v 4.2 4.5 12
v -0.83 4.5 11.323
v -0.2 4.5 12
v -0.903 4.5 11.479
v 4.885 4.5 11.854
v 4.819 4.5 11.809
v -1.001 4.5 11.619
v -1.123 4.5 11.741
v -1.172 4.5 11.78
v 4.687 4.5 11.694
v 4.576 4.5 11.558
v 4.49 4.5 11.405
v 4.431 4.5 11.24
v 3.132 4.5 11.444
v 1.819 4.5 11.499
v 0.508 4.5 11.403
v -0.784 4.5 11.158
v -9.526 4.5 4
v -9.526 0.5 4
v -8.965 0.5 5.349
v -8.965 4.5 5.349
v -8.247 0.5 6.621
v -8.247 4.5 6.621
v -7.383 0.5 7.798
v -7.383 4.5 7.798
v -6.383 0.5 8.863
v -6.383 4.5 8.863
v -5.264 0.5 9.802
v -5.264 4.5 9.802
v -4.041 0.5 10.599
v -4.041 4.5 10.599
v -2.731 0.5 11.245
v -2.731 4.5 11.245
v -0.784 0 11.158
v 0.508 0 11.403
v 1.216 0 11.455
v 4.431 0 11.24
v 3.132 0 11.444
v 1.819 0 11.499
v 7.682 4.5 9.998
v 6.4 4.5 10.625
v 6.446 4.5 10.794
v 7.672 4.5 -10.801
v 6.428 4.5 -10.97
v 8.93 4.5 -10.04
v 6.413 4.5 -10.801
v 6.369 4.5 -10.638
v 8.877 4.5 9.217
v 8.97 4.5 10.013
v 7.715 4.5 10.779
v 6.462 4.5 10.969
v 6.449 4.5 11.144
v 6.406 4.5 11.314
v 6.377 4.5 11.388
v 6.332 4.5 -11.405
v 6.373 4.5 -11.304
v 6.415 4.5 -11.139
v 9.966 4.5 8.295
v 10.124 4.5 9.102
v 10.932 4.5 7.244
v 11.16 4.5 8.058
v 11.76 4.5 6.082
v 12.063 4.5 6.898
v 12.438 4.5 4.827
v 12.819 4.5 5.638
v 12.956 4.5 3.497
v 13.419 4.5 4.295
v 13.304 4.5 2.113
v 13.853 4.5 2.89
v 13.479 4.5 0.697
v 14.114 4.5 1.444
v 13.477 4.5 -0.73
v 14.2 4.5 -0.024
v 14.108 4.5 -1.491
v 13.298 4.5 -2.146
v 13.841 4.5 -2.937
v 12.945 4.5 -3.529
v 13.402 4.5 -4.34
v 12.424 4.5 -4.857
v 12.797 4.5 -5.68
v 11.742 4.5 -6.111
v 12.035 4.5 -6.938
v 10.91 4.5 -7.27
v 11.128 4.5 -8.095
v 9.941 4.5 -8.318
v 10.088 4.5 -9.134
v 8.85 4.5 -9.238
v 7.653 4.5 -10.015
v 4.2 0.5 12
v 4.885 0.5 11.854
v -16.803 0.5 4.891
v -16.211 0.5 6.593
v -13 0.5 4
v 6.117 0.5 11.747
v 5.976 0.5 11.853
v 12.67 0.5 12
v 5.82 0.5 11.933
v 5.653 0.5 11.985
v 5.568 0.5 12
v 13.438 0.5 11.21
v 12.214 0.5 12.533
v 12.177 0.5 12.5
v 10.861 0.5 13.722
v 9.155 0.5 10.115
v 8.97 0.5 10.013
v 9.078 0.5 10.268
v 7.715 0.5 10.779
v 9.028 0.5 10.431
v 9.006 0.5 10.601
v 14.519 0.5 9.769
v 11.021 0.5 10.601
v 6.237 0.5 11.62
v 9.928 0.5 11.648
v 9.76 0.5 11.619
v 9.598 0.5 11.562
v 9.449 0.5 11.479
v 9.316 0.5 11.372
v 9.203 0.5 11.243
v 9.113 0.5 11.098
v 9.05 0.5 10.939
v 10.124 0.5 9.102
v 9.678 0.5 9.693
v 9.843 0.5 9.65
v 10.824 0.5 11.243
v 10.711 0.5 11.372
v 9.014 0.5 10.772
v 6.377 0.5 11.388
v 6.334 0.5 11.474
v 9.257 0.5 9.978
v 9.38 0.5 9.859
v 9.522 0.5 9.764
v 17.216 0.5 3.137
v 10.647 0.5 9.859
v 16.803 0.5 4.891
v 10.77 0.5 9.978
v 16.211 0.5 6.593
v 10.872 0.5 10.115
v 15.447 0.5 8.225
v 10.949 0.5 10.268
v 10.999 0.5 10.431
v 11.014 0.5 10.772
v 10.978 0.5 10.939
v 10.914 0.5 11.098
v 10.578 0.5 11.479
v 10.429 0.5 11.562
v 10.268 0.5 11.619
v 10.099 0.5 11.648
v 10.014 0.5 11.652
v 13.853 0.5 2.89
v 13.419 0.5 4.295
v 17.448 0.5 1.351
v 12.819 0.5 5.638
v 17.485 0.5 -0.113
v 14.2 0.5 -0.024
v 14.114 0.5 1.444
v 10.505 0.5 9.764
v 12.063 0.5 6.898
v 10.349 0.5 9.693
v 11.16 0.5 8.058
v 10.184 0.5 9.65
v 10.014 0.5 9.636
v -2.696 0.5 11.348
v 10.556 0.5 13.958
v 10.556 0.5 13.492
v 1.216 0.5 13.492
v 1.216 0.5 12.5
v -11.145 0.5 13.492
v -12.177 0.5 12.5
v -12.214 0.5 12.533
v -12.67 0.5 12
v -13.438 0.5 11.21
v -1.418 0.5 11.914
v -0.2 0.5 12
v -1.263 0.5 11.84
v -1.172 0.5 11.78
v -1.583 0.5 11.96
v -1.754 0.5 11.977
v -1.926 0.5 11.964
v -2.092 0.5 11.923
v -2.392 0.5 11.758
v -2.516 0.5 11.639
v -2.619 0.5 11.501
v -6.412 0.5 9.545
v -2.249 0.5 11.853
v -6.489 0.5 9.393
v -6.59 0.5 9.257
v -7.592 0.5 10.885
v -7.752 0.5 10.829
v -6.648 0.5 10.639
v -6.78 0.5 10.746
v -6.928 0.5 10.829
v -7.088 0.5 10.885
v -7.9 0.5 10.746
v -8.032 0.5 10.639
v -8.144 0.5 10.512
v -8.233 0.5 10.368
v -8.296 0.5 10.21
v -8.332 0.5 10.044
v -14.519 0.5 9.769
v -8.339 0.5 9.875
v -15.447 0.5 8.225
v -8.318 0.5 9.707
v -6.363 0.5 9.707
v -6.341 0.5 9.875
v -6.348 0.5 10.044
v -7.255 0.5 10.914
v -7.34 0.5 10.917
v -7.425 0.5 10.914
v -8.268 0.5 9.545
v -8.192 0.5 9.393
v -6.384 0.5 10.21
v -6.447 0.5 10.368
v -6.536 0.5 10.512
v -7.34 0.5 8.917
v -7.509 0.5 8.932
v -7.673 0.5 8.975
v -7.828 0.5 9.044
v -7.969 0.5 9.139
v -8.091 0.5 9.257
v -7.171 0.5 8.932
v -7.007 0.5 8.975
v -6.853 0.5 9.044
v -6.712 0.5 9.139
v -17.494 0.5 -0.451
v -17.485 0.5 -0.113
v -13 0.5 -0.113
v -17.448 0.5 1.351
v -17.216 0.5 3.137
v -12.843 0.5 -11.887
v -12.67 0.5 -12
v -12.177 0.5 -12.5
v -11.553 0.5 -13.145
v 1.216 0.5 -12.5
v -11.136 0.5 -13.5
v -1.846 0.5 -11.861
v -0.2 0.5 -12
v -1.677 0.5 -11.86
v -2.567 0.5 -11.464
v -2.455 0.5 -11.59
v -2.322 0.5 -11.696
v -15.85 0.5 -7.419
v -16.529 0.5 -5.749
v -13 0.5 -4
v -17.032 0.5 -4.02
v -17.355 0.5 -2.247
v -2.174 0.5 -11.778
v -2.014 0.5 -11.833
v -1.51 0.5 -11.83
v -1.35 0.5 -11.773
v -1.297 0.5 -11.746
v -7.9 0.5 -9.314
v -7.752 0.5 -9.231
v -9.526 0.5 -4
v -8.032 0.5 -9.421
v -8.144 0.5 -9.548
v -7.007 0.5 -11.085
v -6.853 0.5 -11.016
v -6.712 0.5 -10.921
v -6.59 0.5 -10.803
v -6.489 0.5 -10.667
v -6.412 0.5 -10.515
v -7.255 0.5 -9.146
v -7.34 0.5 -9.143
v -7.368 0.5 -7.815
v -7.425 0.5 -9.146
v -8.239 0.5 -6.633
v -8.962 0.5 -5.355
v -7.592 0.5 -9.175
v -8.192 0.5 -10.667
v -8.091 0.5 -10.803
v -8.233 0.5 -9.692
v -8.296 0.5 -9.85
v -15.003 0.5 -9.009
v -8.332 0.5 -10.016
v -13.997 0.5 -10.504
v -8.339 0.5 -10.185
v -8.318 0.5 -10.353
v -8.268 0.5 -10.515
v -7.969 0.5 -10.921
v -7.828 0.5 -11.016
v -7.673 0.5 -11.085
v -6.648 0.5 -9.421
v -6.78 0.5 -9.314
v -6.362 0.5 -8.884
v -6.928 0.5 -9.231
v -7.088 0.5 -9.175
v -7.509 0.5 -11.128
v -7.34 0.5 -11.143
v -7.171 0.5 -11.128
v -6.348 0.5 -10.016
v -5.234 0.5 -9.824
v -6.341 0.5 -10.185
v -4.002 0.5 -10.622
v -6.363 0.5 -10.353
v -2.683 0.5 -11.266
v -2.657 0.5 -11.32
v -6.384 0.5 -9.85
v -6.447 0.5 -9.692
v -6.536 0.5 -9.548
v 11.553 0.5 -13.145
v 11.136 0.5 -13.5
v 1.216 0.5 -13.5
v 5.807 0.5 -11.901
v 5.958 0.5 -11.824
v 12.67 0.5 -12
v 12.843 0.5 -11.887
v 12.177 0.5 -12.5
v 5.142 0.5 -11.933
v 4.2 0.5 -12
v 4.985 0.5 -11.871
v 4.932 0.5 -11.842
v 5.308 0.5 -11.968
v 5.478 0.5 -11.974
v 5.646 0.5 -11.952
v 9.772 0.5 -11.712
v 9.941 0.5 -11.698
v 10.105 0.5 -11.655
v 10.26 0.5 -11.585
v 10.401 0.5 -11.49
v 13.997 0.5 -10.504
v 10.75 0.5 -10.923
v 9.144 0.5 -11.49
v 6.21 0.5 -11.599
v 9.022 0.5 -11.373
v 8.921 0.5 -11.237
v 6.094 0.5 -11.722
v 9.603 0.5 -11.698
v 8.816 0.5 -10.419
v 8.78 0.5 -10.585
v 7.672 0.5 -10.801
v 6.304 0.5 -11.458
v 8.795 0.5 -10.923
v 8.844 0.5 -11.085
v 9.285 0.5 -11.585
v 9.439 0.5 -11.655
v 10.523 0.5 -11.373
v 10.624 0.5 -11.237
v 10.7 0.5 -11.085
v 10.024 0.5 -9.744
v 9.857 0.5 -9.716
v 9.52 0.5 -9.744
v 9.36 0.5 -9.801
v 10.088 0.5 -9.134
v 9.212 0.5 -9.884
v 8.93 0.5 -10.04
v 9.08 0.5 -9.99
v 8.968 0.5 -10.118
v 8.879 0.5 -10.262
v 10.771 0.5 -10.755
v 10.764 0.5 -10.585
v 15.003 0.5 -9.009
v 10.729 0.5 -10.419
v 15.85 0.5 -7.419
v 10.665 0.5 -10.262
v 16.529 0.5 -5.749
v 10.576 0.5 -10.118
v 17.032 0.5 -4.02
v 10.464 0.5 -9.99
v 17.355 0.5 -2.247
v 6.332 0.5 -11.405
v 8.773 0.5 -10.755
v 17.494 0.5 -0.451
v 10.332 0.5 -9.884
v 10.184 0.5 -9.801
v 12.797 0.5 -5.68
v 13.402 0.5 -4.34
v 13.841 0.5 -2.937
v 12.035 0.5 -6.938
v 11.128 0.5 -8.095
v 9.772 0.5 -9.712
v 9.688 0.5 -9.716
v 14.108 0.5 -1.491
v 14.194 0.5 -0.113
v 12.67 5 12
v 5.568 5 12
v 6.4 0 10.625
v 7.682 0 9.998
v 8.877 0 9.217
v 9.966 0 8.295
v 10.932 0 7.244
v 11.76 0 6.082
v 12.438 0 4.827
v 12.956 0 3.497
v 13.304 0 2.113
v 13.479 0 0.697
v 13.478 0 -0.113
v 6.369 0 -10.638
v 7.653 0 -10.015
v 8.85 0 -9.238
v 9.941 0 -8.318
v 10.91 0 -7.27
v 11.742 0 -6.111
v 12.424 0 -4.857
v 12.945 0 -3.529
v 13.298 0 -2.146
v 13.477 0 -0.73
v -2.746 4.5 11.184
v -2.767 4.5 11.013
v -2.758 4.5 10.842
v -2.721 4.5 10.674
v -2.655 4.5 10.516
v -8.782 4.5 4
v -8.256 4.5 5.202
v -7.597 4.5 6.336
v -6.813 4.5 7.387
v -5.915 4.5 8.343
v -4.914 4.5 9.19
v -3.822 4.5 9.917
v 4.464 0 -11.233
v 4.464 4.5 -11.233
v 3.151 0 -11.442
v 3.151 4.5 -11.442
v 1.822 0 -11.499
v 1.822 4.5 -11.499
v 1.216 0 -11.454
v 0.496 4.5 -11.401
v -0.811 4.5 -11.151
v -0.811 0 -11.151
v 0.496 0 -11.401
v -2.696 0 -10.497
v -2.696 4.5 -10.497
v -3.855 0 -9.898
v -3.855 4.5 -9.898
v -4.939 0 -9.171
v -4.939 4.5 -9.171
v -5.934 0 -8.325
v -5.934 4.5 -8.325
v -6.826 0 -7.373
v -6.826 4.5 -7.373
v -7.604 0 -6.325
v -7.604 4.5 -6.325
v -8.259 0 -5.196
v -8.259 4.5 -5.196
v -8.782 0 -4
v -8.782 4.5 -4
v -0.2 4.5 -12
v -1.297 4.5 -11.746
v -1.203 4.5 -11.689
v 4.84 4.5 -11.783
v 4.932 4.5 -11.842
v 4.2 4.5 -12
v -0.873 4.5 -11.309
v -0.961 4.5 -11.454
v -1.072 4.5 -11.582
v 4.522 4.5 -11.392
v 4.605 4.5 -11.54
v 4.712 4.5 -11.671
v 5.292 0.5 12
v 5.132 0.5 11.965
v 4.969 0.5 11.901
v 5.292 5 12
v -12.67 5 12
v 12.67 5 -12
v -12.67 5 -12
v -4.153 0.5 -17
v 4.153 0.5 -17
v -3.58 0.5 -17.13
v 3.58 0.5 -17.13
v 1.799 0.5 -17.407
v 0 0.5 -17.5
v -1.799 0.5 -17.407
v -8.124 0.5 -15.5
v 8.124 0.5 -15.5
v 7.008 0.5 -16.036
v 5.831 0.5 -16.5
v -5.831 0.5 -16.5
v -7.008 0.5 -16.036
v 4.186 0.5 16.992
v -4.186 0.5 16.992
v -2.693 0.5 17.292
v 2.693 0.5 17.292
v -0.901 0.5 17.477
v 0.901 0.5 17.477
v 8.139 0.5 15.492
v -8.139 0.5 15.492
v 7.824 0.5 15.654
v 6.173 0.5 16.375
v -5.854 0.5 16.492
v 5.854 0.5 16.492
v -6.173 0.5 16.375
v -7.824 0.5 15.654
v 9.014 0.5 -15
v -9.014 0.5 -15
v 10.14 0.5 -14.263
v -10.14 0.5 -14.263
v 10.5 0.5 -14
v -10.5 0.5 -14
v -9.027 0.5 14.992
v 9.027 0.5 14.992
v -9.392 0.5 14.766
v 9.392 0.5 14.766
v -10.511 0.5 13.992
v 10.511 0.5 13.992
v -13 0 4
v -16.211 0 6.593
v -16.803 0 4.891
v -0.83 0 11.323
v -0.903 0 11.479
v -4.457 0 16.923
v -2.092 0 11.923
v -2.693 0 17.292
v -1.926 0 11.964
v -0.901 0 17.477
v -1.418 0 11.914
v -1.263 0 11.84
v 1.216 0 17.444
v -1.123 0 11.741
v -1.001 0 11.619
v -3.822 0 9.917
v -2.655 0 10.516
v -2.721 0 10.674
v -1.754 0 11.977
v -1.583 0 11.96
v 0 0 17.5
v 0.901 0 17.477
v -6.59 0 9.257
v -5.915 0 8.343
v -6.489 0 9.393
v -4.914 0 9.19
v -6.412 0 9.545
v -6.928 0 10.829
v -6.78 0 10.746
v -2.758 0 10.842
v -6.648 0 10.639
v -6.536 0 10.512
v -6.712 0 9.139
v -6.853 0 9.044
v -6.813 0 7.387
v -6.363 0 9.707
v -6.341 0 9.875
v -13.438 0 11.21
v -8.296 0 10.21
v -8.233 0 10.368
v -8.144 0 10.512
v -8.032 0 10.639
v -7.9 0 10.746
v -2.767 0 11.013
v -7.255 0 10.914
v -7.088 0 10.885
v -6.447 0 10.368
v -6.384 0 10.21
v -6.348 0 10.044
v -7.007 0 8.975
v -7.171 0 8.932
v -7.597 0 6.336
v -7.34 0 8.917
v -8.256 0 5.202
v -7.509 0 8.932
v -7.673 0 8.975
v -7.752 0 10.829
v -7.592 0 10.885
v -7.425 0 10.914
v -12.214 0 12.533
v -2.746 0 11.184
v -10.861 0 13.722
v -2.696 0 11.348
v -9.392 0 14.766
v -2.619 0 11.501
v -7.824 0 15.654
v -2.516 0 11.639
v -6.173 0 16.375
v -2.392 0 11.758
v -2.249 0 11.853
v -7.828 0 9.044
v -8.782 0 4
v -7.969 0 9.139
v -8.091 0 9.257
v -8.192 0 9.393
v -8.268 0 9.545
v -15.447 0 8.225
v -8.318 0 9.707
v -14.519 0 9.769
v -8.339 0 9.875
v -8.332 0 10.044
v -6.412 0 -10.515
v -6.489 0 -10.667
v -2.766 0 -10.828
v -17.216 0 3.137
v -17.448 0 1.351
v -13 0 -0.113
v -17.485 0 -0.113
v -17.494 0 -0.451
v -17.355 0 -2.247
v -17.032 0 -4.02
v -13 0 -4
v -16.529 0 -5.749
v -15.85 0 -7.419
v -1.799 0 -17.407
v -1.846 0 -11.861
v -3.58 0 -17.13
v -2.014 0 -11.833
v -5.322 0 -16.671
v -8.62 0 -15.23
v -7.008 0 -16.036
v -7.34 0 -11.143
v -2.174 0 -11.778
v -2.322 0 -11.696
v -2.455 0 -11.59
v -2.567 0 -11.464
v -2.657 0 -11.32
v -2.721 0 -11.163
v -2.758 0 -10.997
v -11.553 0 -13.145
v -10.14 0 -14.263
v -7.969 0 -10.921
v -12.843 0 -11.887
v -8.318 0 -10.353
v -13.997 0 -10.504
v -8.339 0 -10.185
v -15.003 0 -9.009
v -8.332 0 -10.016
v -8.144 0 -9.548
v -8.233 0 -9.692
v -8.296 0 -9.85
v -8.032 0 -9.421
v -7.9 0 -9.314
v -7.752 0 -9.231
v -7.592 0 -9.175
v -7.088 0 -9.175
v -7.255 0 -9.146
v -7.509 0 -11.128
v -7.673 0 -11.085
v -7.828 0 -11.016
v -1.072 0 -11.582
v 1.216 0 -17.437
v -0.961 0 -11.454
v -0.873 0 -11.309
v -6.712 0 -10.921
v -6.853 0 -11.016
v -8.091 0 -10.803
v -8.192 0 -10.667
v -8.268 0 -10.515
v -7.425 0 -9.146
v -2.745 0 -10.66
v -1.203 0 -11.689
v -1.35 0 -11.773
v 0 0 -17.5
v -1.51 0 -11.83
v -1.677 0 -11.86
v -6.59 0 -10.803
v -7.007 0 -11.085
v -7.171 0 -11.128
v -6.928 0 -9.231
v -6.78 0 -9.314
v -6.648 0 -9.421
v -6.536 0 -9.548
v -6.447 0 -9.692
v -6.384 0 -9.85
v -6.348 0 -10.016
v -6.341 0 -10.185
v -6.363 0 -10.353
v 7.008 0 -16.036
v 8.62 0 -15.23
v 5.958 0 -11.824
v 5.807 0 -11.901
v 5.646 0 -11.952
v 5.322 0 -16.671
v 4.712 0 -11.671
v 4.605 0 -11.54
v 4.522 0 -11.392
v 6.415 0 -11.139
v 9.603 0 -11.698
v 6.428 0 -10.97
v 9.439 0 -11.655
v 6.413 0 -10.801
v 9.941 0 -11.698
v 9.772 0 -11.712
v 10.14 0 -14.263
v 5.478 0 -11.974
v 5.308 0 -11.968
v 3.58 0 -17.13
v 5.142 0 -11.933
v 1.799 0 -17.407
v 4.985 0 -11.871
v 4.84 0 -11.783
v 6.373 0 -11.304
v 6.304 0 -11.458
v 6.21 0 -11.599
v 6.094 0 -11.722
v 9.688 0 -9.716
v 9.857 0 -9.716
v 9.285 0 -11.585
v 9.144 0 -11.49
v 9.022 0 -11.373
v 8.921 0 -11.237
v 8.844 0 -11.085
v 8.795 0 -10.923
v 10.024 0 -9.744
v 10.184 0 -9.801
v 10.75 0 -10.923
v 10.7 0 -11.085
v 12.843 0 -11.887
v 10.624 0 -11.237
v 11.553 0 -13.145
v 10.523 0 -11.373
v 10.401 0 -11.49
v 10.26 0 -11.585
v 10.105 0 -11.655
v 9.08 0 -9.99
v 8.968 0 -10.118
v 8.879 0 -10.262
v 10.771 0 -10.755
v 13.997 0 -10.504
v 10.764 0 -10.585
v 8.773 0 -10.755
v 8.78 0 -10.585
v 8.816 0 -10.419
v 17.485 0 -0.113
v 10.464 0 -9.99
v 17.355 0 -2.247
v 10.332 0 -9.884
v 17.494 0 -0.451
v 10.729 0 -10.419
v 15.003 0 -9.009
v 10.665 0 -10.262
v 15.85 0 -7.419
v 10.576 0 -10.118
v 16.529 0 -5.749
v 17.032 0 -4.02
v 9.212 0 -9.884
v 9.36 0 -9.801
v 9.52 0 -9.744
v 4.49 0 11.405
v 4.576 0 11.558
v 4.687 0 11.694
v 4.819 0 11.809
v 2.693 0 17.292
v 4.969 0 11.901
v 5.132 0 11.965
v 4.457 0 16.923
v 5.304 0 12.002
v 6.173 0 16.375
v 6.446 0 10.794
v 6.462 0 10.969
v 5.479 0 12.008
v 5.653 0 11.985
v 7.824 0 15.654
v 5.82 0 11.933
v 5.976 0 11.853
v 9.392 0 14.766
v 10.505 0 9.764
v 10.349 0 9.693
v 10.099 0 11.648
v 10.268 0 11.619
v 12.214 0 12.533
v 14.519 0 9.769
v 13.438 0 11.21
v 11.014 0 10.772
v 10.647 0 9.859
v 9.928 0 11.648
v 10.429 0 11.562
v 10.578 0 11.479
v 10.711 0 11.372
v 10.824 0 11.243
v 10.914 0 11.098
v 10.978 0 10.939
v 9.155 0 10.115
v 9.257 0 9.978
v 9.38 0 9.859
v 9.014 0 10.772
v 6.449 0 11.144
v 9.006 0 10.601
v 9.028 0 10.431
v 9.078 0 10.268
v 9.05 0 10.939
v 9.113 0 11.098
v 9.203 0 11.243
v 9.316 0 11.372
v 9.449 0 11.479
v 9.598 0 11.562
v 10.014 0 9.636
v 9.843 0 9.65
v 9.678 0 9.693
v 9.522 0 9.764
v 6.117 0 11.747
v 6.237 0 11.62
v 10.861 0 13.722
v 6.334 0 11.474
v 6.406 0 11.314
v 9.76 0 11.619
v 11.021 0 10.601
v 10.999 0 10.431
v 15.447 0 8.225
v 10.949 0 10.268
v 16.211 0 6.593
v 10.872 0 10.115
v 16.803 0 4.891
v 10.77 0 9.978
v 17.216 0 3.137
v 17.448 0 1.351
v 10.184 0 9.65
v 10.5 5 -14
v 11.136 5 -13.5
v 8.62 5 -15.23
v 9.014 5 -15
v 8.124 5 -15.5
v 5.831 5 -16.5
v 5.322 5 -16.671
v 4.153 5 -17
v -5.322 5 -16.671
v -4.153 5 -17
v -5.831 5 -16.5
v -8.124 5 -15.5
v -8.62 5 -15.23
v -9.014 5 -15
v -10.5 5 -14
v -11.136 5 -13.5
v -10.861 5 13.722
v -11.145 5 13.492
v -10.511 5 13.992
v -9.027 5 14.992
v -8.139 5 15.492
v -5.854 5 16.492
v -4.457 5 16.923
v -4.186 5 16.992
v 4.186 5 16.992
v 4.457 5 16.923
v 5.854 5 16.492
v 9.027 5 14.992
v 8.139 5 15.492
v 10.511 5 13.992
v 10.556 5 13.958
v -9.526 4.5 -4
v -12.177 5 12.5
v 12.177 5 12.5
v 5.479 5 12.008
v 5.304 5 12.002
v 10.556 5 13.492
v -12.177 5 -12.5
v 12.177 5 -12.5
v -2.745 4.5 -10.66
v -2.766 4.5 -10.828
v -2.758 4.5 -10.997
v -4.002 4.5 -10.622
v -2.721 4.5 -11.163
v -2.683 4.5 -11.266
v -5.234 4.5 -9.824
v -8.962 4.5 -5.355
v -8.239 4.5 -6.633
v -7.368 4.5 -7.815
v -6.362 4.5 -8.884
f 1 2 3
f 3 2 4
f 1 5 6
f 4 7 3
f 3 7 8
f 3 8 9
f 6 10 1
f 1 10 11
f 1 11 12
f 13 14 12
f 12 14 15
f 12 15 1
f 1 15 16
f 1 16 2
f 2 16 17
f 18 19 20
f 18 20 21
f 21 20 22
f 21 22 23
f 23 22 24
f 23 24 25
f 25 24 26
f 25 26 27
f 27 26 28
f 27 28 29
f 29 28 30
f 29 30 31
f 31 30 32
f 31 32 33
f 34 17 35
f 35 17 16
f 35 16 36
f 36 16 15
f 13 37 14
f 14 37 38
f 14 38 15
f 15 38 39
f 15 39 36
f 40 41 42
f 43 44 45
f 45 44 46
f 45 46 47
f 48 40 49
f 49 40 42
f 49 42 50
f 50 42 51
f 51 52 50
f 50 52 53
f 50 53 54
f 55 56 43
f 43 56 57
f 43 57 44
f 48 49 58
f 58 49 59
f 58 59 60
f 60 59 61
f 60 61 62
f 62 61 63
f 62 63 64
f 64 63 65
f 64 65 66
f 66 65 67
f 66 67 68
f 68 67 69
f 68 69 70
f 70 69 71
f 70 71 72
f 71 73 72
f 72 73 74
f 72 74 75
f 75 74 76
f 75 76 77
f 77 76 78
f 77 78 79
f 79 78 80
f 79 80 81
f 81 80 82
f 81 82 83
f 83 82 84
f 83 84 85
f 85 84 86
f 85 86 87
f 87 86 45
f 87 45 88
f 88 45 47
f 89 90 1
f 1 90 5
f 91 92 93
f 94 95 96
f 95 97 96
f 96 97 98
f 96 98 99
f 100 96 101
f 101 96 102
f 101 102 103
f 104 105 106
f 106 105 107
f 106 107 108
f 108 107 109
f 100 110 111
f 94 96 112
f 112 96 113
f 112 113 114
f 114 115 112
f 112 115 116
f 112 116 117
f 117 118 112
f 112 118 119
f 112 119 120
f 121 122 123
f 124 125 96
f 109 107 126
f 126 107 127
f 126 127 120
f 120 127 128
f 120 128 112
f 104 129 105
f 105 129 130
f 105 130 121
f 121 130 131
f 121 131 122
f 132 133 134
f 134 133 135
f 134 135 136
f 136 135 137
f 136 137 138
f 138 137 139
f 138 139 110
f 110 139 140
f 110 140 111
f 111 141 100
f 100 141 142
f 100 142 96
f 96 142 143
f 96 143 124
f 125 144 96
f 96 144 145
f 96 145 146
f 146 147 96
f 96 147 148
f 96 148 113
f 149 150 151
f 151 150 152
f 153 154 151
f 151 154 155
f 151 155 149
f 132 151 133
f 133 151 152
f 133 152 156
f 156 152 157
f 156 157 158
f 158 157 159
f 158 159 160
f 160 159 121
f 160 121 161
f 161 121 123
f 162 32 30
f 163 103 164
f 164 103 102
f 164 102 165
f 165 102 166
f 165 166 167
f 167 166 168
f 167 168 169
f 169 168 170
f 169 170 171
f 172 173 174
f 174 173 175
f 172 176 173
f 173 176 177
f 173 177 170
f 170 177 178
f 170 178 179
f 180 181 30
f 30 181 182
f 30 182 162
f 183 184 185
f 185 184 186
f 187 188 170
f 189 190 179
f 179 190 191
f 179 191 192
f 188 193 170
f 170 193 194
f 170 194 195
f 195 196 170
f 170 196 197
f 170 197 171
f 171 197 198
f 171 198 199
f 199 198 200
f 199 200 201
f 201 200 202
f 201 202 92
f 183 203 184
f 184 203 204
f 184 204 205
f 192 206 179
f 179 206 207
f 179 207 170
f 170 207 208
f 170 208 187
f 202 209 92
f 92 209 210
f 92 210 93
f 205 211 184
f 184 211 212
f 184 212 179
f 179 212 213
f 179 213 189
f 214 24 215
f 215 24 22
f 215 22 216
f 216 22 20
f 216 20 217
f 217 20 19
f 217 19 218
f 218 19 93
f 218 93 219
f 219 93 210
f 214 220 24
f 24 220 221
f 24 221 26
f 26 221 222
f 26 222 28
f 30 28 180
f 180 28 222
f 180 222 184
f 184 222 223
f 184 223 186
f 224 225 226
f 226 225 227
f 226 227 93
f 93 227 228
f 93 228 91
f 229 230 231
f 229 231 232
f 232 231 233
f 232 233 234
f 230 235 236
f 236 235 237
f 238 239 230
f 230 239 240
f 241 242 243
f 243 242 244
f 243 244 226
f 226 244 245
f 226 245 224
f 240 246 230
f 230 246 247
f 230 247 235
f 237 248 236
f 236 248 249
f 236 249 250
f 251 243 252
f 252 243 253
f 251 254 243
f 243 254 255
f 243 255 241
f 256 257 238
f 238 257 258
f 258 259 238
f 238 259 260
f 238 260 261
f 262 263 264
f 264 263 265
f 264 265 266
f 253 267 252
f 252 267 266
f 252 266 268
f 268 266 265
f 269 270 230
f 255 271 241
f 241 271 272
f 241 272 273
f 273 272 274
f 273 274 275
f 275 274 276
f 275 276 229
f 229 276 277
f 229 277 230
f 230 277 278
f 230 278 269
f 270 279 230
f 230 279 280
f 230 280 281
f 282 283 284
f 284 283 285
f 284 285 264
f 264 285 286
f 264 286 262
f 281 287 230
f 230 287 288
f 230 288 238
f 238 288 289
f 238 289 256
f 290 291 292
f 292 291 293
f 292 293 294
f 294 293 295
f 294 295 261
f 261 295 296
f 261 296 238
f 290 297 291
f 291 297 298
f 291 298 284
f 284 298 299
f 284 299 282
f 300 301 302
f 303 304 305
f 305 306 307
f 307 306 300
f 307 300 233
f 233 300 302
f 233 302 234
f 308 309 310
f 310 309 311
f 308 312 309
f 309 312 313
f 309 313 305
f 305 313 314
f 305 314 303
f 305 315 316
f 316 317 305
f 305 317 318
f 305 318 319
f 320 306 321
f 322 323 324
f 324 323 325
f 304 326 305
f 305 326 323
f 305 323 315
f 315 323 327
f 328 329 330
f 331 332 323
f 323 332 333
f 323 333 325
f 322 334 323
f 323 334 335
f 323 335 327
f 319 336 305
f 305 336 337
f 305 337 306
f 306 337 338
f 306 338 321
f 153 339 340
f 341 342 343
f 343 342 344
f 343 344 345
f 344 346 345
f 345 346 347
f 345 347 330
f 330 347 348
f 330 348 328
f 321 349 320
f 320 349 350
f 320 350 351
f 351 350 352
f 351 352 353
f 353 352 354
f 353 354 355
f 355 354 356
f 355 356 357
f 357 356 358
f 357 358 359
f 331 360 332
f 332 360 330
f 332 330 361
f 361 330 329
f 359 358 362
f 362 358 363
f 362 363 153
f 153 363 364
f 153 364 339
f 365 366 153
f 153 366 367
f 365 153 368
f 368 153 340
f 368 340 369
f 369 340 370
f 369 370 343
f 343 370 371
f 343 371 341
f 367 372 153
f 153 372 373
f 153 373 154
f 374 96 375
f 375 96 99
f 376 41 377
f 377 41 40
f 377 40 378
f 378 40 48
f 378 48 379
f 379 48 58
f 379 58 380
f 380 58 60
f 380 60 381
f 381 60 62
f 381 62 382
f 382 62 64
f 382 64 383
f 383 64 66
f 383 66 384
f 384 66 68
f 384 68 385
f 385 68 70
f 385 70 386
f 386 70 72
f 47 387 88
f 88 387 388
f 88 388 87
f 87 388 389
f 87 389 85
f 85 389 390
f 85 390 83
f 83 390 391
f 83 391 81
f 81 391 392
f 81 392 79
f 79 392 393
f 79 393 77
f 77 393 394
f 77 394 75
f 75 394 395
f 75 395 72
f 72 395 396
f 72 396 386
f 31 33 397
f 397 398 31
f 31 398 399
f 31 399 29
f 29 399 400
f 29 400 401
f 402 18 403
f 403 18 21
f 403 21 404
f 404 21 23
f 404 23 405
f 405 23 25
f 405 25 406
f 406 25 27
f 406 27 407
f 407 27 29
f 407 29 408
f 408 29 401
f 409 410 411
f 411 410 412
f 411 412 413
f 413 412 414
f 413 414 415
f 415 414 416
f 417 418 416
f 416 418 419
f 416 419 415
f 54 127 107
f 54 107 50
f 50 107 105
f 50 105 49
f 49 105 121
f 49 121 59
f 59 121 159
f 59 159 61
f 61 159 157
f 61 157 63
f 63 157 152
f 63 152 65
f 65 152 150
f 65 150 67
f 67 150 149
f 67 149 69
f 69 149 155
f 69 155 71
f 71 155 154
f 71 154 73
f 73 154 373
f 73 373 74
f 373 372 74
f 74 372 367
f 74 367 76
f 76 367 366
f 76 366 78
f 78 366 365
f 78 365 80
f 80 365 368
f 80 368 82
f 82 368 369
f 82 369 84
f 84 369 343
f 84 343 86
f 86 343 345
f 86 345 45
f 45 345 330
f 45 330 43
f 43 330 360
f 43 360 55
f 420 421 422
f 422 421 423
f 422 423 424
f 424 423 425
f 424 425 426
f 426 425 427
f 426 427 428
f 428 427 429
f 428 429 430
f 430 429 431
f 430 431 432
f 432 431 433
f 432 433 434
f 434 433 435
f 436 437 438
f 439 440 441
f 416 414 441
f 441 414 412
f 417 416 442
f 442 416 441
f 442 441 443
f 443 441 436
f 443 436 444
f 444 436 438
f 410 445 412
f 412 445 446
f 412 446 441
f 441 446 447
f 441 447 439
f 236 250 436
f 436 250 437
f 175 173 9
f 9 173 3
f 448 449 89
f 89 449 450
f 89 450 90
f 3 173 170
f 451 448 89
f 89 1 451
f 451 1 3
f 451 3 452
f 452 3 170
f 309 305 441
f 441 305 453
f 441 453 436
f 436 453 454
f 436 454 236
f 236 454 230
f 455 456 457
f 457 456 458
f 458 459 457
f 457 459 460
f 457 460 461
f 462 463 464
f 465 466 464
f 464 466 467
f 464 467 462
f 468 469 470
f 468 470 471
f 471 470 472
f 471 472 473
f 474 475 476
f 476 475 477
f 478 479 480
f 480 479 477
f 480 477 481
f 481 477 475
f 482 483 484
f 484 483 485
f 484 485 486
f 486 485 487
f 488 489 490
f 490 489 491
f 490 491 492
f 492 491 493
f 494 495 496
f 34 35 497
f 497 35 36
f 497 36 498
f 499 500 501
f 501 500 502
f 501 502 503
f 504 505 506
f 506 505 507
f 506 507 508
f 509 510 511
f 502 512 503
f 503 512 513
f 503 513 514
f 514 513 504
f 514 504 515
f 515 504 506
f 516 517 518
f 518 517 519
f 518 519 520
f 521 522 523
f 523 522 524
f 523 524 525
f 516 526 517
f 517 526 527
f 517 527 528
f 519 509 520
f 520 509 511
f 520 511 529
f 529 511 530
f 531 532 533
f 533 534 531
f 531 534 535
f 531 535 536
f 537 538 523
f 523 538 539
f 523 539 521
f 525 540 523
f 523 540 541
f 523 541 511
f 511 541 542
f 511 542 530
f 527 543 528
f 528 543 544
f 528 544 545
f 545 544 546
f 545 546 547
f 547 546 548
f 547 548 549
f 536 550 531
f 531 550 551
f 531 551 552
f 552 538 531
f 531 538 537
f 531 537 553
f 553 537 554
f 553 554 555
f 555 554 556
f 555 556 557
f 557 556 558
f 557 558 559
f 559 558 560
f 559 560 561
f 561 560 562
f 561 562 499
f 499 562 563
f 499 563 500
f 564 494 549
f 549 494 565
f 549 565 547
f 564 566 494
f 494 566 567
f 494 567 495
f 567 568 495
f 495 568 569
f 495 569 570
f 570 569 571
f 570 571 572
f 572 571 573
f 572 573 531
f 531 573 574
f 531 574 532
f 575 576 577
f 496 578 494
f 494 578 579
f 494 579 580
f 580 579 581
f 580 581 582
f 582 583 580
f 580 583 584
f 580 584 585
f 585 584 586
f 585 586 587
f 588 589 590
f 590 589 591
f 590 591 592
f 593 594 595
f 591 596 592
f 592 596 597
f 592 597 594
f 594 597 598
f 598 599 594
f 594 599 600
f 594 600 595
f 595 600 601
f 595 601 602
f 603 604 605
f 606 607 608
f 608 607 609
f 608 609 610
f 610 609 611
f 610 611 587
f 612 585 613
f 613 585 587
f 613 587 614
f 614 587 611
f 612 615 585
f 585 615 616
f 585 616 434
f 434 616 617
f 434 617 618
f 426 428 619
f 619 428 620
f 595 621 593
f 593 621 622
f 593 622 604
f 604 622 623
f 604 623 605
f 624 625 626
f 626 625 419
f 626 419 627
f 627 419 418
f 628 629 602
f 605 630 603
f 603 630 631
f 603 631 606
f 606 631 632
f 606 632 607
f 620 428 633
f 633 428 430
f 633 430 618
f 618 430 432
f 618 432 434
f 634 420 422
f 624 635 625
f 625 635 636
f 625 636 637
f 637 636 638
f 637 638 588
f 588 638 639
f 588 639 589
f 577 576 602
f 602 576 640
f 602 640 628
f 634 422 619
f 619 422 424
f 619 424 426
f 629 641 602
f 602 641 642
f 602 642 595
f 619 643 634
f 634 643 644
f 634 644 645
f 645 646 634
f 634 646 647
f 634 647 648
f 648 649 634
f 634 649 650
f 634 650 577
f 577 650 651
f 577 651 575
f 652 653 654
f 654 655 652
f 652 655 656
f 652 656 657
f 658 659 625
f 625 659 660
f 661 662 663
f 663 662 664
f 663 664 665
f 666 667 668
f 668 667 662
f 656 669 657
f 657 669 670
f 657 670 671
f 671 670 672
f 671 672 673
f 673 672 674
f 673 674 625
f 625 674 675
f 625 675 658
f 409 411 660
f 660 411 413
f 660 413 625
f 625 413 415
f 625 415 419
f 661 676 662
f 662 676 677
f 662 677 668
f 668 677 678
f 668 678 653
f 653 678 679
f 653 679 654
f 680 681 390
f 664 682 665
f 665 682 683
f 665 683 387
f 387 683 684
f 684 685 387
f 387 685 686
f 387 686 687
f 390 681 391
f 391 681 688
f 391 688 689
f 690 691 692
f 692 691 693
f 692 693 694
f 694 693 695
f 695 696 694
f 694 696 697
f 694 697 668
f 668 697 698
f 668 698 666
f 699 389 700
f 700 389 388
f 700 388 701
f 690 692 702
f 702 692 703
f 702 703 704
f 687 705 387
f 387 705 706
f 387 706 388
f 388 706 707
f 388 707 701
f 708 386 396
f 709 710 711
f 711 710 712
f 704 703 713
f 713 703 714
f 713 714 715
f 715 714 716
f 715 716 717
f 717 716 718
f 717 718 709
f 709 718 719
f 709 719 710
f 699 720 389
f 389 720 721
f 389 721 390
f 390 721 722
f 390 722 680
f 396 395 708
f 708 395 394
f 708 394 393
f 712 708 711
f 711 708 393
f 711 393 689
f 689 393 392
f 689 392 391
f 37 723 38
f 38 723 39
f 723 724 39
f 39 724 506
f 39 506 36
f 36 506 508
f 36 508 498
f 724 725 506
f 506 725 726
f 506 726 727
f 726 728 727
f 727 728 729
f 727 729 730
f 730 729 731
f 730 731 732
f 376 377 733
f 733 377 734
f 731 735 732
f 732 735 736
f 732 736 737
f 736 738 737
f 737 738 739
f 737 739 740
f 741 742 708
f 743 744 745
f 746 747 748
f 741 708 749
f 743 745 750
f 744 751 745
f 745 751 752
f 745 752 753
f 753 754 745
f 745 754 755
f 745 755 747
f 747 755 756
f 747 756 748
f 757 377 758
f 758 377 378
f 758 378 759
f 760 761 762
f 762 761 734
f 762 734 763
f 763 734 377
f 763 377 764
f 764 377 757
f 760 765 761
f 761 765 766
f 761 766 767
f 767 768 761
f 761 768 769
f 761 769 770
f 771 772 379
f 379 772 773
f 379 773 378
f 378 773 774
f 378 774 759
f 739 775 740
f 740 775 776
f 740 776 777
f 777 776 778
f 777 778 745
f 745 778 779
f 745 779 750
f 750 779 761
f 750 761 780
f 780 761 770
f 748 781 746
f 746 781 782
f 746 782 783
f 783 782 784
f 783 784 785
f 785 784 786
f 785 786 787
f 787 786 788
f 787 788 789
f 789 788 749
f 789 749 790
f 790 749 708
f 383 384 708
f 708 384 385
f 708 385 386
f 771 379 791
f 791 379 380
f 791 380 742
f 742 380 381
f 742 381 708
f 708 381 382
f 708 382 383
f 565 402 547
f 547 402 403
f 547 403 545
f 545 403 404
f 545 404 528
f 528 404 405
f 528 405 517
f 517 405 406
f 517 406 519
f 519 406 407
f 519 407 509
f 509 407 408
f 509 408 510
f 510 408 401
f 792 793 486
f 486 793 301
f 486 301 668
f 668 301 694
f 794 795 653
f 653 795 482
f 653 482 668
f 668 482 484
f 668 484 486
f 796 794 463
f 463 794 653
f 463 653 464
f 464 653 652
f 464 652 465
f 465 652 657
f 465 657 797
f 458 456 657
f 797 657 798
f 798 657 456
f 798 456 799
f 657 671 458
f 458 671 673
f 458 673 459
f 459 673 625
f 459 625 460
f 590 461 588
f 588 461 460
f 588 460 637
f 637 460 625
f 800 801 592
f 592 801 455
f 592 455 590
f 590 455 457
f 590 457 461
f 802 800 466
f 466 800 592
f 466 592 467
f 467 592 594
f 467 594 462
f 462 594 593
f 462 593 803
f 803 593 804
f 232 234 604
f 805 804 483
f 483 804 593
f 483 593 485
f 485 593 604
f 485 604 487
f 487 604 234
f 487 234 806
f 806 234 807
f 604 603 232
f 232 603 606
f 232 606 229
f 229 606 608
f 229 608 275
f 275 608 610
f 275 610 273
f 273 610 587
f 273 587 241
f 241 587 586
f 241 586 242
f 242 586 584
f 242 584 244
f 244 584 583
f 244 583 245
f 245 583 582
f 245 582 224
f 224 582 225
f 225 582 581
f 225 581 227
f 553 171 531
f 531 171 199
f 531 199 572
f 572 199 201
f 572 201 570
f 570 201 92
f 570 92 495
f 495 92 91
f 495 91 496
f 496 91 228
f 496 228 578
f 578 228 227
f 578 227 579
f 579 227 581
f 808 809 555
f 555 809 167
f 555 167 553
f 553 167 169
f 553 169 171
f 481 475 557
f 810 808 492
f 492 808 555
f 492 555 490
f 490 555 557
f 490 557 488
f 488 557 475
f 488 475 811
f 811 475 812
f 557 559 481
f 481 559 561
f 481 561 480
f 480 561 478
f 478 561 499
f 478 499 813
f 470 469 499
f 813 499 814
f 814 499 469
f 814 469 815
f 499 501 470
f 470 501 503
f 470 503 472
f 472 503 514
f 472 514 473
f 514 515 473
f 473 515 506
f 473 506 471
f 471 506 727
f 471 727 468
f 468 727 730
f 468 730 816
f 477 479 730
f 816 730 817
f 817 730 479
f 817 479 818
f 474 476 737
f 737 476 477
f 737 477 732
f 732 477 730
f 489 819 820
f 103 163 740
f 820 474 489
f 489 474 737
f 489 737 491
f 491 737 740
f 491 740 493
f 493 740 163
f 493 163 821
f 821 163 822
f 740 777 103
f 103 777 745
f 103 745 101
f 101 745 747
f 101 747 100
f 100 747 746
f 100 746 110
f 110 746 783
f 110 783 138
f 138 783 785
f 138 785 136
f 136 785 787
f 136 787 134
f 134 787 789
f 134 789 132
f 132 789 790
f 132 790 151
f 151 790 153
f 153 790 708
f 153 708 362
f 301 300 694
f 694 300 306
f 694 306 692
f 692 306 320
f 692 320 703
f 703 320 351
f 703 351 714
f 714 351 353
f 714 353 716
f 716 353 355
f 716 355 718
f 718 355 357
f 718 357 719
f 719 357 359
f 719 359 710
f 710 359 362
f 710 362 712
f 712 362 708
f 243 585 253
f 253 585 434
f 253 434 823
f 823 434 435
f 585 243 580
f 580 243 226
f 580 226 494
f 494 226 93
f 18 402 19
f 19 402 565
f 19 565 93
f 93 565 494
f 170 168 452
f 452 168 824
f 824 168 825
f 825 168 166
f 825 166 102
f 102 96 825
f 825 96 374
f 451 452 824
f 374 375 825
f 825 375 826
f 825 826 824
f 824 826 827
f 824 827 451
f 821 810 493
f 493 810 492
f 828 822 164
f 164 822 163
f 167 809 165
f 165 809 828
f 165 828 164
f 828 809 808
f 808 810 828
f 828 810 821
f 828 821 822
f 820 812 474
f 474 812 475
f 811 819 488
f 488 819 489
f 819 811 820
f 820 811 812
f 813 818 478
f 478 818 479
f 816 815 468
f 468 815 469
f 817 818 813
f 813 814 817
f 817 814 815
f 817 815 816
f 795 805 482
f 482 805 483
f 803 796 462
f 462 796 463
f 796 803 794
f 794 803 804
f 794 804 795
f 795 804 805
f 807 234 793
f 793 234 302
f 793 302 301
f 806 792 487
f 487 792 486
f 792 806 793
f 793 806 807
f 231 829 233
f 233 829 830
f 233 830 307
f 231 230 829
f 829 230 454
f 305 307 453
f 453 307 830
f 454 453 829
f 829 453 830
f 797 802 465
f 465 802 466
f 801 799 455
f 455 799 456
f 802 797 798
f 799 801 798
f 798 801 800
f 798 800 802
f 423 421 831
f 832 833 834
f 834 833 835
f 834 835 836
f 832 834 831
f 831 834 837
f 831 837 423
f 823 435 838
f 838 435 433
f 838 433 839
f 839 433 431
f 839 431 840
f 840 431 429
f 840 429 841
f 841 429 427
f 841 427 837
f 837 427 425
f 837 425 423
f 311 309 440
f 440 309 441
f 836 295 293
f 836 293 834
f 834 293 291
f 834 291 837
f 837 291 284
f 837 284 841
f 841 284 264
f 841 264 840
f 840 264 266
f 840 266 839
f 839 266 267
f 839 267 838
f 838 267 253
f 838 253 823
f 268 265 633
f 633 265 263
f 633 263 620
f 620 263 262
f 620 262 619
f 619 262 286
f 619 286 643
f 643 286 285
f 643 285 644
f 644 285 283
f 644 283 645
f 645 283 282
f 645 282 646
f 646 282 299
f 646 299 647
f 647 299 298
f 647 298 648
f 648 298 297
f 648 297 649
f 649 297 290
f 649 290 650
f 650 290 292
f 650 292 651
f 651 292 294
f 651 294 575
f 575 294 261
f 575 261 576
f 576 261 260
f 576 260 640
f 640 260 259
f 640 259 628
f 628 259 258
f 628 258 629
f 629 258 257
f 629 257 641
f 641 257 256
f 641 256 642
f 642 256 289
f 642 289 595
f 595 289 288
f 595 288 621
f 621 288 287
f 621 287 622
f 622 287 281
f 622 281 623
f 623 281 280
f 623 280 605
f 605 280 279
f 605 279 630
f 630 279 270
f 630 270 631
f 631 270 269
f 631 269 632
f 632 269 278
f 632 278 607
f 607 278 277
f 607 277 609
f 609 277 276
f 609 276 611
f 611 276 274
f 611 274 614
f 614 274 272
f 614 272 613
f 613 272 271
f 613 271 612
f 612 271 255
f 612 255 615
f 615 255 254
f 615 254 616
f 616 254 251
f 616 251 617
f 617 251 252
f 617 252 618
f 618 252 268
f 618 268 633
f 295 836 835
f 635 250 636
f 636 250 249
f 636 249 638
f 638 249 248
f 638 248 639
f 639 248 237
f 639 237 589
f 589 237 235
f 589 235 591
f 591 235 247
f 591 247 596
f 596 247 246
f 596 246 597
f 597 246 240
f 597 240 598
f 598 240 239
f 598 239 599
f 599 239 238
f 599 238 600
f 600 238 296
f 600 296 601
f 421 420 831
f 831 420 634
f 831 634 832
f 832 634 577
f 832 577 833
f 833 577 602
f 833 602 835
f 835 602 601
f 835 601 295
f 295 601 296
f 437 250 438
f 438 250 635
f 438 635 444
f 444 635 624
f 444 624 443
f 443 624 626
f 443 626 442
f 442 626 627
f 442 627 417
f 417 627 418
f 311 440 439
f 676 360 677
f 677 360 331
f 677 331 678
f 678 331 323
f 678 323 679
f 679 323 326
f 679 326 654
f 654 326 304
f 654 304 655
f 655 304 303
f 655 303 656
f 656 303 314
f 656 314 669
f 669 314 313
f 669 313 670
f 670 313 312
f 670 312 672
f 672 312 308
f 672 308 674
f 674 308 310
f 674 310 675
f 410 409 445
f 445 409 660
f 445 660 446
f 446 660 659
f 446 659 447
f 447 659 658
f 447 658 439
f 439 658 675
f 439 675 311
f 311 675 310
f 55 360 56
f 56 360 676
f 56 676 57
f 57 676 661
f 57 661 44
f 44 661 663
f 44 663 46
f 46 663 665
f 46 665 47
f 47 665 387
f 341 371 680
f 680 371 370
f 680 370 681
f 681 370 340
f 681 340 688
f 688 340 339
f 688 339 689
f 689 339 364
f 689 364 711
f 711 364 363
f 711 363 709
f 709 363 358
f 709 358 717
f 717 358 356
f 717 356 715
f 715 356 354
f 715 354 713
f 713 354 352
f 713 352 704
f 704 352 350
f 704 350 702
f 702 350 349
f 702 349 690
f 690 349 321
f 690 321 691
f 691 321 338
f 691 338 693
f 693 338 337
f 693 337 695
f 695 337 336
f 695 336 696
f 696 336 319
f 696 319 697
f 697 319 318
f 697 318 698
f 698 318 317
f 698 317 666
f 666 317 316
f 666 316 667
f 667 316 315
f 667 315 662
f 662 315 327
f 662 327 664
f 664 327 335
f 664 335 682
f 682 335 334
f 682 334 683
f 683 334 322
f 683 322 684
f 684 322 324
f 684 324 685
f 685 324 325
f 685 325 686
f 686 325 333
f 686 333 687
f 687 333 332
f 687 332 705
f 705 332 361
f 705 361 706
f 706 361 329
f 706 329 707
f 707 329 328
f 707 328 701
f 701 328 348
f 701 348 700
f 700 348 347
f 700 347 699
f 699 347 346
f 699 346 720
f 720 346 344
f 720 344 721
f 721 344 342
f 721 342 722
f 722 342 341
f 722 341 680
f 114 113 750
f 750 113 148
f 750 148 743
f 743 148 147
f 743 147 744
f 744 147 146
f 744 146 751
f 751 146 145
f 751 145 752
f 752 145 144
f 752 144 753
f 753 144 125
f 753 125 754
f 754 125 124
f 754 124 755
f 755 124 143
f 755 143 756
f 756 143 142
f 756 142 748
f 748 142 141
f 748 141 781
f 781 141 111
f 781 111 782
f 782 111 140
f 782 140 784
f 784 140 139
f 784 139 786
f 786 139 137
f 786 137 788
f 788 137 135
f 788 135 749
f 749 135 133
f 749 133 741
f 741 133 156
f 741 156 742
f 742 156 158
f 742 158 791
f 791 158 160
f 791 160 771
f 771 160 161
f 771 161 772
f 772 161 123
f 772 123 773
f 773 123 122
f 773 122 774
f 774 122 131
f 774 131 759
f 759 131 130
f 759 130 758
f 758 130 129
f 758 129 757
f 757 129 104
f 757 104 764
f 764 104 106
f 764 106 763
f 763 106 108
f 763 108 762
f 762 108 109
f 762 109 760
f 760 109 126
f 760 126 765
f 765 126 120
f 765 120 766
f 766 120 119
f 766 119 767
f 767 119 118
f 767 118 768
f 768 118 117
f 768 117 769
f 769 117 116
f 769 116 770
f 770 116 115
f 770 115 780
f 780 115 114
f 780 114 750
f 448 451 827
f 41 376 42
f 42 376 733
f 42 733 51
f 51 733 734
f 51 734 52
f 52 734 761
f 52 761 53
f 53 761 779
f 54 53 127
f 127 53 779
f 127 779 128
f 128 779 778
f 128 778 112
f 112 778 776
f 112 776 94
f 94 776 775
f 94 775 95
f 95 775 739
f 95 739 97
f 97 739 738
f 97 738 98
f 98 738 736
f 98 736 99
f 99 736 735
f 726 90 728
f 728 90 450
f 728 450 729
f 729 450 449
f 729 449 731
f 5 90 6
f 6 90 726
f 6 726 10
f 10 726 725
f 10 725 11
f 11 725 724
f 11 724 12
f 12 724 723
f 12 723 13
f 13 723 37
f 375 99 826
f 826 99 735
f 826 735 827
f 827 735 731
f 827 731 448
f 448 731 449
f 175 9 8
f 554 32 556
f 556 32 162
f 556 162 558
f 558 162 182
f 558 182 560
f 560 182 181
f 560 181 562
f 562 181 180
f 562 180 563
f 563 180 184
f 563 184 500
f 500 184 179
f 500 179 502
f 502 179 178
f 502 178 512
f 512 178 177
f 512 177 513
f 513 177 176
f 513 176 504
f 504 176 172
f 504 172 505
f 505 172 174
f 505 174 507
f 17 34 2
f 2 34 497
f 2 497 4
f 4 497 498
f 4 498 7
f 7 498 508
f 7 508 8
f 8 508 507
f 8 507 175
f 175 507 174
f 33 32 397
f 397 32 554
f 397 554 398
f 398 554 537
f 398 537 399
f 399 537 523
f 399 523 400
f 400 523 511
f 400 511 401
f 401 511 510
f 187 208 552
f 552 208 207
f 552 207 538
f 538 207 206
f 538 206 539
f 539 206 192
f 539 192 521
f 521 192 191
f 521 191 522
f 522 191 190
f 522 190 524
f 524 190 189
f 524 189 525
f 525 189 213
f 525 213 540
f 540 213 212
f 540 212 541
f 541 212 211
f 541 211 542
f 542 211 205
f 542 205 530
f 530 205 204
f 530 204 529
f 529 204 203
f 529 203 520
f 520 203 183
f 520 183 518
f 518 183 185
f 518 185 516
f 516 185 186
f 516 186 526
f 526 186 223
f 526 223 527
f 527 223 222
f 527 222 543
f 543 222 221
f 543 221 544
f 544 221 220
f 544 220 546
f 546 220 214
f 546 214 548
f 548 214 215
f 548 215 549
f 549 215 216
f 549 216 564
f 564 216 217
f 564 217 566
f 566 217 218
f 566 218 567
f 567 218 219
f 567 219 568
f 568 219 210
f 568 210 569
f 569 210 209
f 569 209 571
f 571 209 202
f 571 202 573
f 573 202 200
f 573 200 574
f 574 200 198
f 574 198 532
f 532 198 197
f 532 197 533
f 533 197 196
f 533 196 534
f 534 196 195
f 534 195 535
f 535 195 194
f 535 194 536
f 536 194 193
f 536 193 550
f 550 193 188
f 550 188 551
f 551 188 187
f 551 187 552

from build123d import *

# Parameters (mm, degrees)
SKETCH1_R           = 17.5
BOSS_EXTRUDE1_DEPTH = 0.5
SKETCH2_R           = 11.5
CUT_EXTRUDE1_DEPTH  = 0.5
SKETCH3_W           = 15
SKETCH3_H           = 8
CUT_EXTRUDE4_DEPTH  = 2.5
BOSS_EXTRUDE6_DEPTH = 4.5
BOSS_EXTRUDE7_START = 4
SKETCH9_R           = 12.2
SKETCH9_R_2         = 11.5
BOSS_EXTRUDE7_DEPTH = 4
SKETCH10_W          = 4.218070674
SKETCH10_H          = 8
CUT_EXTRUDE5_DEPTH  = 6
SKETCH11_R          = 1
SKETCH11_R_2        = 0.998714777
SKETCH11_R_3        = 0.998671431
SKETCH11_R_4        = 1.032567444
SKETCH11_R_5        = 1.008118798
CUT_EXTRUDE7_DEPTH  = 100


with BuildPart() as part:
    # Sketch1 → Boss-Extrude1 (new body)
    with BuildSketch(Plane(origin=(0, 0, 0), x_dir=(1, 0, 0), z_dir=(0, 1, 0))):
        with Locations(Location((0, 0, 0), (0, 0, 270))):
            Circle(SKETCH1_R)
    extrude(amount=BOSS_EXTRUDE1_DEPTH)

    # Sketch2 → Cut-Extrude1 (cut)
    with BuildSketch(Plane(origin=(0, 0.5, 0), x_dir=(1, 0, 0), z_dir=(0, 1, 0))):
        with Locations(Location((2, 0, 0), (0, 0, 270))):
            Circle(SKETCH2_R)
    extrude(amount=-CUT_EXTRUDE1_DEPTH, mode=Mode.SUBTRACT)

    # Sketch3 → Cut-Extrude4 (cut)
    with BuildSketch(Plane(origin=(0, 0, 0), x_dir=(1, 0, 0), z_dir=(0, 1, 0))):
        with Locations((-5.5, 0)):
            Rectangle(SKETCH3_W, SKETCH3_H)
    extrude(amount=CUT_EXTRUDE4_DEPTH, mode=Mode.SUBTRACT)

    # Sketch7 → Boss-Extrude6 (add)
    with BuildSketch(Plane(origin=(0, 0.5, 0), x_dir=(1, 0, 0), z_dir=(0, 1, 0))):
        with BuildLine():
            Line((-11.135528726, 13.5), (11.135528726, 13.5))
            ThreePointArc((11.135528726, 13.5), (10.820652744, 13.753671299), (10.5, 14))
            Line((10.5, 14), (-10.5, 14))
            ThreePointArc((-10.5, 14), (-10.820652744, 13.753671299), (-11.135528726, 13.5))
        make_face()
        with BuildLine():
            Line((12.176537068, 12.5), (-12.176537068, 12.5))
            ThreePointArc((-12.176537068, 12.5), (-12.42556977, 12.252480192), (-12.669572012, 12))
            Line((-12.669572012, 12), (12.669572012, 12))
            ThreePointArc((12.669572012, 12), (12.42556977, 12.252480192), (12.176537068, 12.5))
        make_face()
        with BuildLine():
            ThreePointArc((-11.145229996, -13.491992008), (-10.830835088, -13.74565427), (-10.510668849, -13.991992008))
            Line((-10.510668849, -13.991992008), (10.510668849, -13.991992008))
            ThreePointArc((10.510668849, -13.991992008), (10.53333572, -13.974936086), (10.555974914, -13.957843444))
            Line((10.555974914, -13.957843444), (10.555974914, -13.491992008))
            Line((10.555974914, -13.491992008), (-11.145229996, -13.491992008))
        make_face()
        with BuildLine():
            Line((-9.013878189, 15), (9.013878189, 15))
            ThreePointArc((9.013878189, 15), (8.572604405, 15.256488905), (8.124038405, 15.5))
            Line((8.124038405, 15.5), (-8.124038405, 15.5))
            ThreePointArc((-8.124038405, 15.5), (-8.572604405, 15.256488905), (-9.013878189, 15))
        make_face()
        with BuildLine():
            ThreePointArc((-9.027190906, -14.991992008), (-8.586884855, -15.248455938), (-8.139298719, -15.491992008))
            Line((-8.139298719, -15.491992008), (8.139298719, -15.491992008))
            ThreePointArc((8.139298719, -15.491992008), (8.586884855, -15.248455938), (9.027190906, -14.991992008))
            Line((9.027190906, -14.991992008), (-9.027190906, -14.991992008))
        make_face()
        with BuildLine():
            Line((-5.830951895, 16.5), (5.830951895, 16.5))
            ThreePointArc((5.830951895, 16.5), (4.998387844, 16.770990399), (4.153311931, 17))
            Line((4.153311931, 17), (-4.153311931, 17))
            ThreePointArc((-4.153311931, 17), (-4.998387844, 16.770990399), (-5.830951895, 16.5))
        make_face()
        with BuildLine():
            Line((5.853562985, -16.491992008), (-5.853562985, -16.491992008))
            ThreePointArc((-5.853562985, -16.491992008), (-5.025979841, -16.762742217), (-4.185953609, -16.991992008))
            Line((-4.185953609, -16.991992008), (4.185953609, -16.991992008))
            ThreePointArc((4.185953609, -16.991992008), (5.025979841, -16.762742217), (5.853562985, -16.491992008))
        make_face()
        with BuildLine():
            Line((12.669572012, -12), (-12.669572012, -12))
            ThreePointArc((-12.669572012, -12), (-12.42556977, -12.252480192), (-12.176537068, -12.5))
            Line((-12.176537068, -12.5), (12.176537068, -12.5))
            ThreePointArc((12.176537068, -12.5), (12.42556977, -12.252480192), (12.669572012, -12))
        make_face()
    extrude(amount=BOSS_EXTRUDE6_DEPTH)

    # Sketch9 → Boss-Extrude7 (add)
    with BuildSketch(Plane(origin=(0, 0.5, 0), x_dir=(1, 0, 0), z_dir=(0, 1, 0)).offset(BOSS_EXTRUDE7_START)):
        with Locations((2, 0)):
            Circle(SKETCH9_R)
        with Locations(Location((2, 0, 0), (0, 0, 270))):
            Circle(SKETCH9_R_2, mode=Mode.SUBTRACT)
    extrude(amount=-BOSS_EXTRUDE7_DEPTH)

    # Sketch10 → Cut-Extrude5 (cut)
    with BuildSketch(Plane.XZ):
        with Locations((-10.890964663, 0)):
            Rectangle(SKETCH10_W, SKETCH10_H)
    extrude(amount=-CUT_EXTRUDE5_DEPTH, mode=Mode.SUBTRACT)

    # Sketch11 → Cut-Extrude7 (cut)
    with BuildSketch(Plane.XZ):
        with Locations(Location((-7.340296828, -10.142549821, 0), (0, 0, 270))):
            Circle(SKETCH11_R)
        with Locations((-1.767569388, -10.865331146)):
            Circle(SKETCH11_R_2)
        with Locations((5.429630438, -10.976685978)):
            Circle(SKETCH11_R_3)
        with Locations(Location((-7.340296828, 9.917402438, 0), (0, 0, 270))):
            Circle(SKETCH11_R)
        with Locations((5.429630438, 10.976685978)):
            Circle(SKETCH11_R_4)
        with Locations((-1.767569388, 10.976685978)):
            Circle(SKETCH11_R)
        with Locations(Location((10.013638897, 10.643798729, 0), (0, 0, 270))):
            Circle(SKETCH11_R_5)
        with Locations(Location((9.772353005, -10.712194768, 0), (0, 0, 270))):
            Circle(SKETCH11_R)
    extrude(amount=-CUT_EXTRUDE7_DEPTH, mode=Mode.SUBTRACT)


solid = part.part
